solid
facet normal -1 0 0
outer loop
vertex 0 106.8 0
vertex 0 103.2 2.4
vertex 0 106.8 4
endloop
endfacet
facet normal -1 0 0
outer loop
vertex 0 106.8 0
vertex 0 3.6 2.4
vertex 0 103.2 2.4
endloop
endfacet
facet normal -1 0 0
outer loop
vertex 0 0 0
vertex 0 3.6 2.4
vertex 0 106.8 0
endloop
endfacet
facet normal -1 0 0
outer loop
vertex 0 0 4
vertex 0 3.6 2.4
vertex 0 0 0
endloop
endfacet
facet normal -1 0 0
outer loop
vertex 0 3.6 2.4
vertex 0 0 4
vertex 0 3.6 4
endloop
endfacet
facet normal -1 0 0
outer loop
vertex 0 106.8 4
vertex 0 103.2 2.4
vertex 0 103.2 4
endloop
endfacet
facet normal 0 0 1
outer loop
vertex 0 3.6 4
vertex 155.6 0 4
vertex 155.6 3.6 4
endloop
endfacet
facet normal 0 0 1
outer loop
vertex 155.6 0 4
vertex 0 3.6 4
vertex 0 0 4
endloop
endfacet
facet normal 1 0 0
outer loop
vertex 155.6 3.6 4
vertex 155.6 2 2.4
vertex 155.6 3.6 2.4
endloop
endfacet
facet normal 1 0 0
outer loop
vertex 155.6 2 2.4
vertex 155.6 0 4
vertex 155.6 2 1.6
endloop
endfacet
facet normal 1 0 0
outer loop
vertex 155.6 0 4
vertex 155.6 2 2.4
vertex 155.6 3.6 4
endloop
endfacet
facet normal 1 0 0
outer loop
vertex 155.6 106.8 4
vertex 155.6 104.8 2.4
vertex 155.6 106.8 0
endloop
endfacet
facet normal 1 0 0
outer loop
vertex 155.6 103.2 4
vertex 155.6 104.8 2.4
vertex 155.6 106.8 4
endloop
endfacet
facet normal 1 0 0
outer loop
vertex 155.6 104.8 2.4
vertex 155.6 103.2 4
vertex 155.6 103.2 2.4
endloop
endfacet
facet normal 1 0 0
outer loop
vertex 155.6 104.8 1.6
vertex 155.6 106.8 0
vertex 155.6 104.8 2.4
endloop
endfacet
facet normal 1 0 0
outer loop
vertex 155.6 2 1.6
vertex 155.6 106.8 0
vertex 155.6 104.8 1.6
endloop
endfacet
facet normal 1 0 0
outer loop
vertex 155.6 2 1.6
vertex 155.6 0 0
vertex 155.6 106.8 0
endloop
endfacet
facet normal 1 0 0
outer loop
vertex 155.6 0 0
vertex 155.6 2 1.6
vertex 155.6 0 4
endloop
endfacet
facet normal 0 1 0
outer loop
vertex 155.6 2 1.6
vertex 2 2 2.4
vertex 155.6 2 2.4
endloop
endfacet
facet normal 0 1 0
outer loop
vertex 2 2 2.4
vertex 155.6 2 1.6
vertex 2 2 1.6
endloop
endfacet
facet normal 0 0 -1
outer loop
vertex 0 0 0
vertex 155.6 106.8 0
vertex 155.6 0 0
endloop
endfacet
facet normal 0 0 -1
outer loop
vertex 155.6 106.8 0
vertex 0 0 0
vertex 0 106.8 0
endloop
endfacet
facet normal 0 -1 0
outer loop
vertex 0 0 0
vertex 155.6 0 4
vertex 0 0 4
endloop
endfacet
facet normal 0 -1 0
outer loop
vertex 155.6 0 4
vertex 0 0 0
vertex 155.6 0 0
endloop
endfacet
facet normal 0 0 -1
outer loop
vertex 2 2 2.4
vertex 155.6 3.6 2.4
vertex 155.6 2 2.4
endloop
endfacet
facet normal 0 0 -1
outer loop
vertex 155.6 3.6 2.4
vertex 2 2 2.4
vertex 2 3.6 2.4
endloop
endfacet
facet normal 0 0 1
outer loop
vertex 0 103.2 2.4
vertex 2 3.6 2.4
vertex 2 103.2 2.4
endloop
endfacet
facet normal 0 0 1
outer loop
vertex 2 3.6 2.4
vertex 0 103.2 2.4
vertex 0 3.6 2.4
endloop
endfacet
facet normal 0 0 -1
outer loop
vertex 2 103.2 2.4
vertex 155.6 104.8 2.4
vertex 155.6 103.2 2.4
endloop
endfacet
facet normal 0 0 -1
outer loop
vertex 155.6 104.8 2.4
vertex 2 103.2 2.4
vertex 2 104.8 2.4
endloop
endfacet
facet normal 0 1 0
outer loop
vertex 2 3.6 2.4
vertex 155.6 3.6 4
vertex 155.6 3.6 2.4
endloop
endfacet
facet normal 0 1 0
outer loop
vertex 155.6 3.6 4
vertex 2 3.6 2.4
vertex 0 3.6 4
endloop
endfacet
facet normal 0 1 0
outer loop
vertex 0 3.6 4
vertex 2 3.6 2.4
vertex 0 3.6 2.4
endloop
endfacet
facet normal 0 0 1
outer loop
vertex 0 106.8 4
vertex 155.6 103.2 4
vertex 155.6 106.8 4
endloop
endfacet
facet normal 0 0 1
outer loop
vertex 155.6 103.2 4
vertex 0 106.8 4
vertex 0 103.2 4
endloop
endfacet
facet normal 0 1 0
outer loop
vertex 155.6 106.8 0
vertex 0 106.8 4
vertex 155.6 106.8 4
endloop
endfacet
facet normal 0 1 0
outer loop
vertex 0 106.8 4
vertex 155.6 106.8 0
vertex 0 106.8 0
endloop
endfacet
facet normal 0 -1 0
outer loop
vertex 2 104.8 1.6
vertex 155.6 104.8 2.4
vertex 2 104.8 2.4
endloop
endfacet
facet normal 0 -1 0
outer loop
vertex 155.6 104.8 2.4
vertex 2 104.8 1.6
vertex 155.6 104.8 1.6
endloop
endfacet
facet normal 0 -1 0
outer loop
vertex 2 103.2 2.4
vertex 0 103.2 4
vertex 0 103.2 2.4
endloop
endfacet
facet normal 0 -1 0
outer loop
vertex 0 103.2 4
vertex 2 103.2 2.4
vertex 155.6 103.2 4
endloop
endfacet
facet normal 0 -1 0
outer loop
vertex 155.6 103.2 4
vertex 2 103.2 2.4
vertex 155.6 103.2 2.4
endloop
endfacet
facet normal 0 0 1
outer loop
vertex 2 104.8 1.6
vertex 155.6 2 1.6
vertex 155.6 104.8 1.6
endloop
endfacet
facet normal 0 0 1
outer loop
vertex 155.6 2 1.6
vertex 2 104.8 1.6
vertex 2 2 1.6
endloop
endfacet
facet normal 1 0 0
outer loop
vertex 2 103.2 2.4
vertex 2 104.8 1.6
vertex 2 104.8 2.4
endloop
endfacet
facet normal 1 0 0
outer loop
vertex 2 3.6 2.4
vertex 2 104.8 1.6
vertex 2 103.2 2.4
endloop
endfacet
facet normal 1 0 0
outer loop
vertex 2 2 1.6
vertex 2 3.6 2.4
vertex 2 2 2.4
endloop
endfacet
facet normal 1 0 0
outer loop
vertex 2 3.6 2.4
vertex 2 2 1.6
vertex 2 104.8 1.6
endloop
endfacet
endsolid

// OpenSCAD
// 4 x 6 inch card sleeve; insert from the open right end. Units: mm.
card=[152.4,101.6];
clearance=0.6; // allowance on each edge
gap=0.8; // card thickness plus sliding clearance
wall=2; base=1.6; lip=1.6;
x=card[0]+2*clearance+wall;
y=card[1]+2*clearance+2*wall;
union(){
 cube([x,y,base]);
 for(edge=[0,1]){
 translate([0,edge*(y-wall),0]) cube([x,wall,base+gap+lip]);
 translate([0,edge*(y-wall-lip),base+gap]) cube([x,wall+lip,lip]);
 }
 translate([0,0,0]) cube([wall,y,base+gap]);
}
